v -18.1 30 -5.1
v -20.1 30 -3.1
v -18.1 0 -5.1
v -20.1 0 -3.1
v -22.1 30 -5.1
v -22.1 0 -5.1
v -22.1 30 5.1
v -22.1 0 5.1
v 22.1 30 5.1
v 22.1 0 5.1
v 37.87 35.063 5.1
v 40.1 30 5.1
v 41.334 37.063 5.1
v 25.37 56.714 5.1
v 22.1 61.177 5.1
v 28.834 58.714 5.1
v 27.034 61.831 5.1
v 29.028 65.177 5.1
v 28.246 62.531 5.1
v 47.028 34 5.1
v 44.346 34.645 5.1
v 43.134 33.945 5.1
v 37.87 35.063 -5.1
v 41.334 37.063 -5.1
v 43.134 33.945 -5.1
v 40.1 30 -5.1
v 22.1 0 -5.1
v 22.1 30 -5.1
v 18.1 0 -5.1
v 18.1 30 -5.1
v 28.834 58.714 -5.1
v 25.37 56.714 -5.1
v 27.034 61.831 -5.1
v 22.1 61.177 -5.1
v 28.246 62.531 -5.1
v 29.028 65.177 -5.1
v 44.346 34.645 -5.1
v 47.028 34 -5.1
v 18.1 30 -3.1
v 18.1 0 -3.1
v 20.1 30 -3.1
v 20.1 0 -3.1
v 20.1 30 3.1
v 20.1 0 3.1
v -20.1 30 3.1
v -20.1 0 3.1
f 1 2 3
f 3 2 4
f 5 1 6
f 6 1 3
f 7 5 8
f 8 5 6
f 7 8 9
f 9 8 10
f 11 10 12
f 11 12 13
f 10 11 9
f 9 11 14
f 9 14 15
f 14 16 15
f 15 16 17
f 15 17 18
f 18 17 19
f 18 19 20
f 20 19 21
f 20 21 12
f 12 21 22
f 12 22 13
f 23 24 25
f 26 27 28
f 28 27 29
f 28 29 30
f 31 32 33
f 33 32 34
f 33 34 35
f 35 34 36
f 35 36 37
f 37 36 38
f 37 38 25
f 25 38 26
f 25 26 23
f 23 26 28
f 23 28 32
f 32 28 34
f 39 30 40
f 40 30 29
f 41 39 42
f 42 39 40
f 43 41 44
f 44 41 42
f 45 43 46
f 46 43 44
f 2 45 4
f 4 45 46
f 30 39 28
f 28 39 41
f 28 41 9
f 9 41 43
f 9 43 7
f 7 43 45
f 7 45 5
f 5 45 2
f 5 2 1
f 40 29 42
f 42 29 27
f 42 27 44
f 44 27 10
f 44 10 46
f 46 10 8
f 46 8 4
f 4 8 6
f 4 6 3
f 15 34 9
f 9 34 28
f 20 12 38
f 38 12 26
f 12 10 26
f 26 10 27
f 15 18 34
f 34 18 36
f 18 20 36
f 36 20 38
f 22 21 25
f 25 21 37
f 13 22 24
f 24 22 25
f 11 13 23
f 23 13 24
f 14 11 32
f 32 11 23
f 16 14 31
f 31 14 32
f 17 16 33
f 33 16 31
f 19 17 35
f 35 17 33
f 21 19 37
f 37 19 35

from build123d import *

# Parameters (mm, degrees)
BOSS_EXTRUDE1_DEPTH = 30
BOSS_EXTRUDE2_DEPTH = 10.2
CUT_EXTRUDE1_DEPTH  = 10.2


with BuildPart() as part:
    # Sketch1 → Boss-Extrude1 (new body)
    with BuildSketch(Plane(origin=(0, 0, 0), x_dir=(1, 0, 0), z_dir=(0, 1, 0))):
        Polygon((18.1, 3.1), (18.1, 5.1), (22.1, 5.1), (22.1, -5.1), (-22.1, -5.1), (-22.1, 5.1), (-18.1, 5.1), (-20.1, 3.1), (-20.1, -3.1), (20.1, -3.1), (20.1, 3.1), align=None)
    extrude(amount=BOSS_EXTRUDE1_DEPTH)

    # Sketch2 → Boss-Extrude2 (add)
    with BuildSketch(Plane.XY.offset(5.1)):
        Polygon((47.02820323, 34), (29.02820323, 65.176914536), (22.1, 61.176914536), (22.1, 30), (22.1, 0), (40.1, 30), align=None)
    extrude(amount=-BOSS_EXTRUDE2_DEPTH)

    # Sketch3 → Cut-Extrude1 (cut)
    with BuildSketch(Plane.XY.offset(5.1)):
        Polygon((44.346152423, 34.645448267), (28.246152423, 62.531466269), (27.033716857, 61.831466269), (28.833716857, 58.713774815), (25.369615242, 56.713774815), (37.869615242, 35.063139721), (41.333716857, 37.063139721), (43.133716857, 33.945448267), align=None)
    extrude(amount=-CUT_EXTRUDE1_DEPTH, mode=Mode.SUBTRACT)


solid = part.part
